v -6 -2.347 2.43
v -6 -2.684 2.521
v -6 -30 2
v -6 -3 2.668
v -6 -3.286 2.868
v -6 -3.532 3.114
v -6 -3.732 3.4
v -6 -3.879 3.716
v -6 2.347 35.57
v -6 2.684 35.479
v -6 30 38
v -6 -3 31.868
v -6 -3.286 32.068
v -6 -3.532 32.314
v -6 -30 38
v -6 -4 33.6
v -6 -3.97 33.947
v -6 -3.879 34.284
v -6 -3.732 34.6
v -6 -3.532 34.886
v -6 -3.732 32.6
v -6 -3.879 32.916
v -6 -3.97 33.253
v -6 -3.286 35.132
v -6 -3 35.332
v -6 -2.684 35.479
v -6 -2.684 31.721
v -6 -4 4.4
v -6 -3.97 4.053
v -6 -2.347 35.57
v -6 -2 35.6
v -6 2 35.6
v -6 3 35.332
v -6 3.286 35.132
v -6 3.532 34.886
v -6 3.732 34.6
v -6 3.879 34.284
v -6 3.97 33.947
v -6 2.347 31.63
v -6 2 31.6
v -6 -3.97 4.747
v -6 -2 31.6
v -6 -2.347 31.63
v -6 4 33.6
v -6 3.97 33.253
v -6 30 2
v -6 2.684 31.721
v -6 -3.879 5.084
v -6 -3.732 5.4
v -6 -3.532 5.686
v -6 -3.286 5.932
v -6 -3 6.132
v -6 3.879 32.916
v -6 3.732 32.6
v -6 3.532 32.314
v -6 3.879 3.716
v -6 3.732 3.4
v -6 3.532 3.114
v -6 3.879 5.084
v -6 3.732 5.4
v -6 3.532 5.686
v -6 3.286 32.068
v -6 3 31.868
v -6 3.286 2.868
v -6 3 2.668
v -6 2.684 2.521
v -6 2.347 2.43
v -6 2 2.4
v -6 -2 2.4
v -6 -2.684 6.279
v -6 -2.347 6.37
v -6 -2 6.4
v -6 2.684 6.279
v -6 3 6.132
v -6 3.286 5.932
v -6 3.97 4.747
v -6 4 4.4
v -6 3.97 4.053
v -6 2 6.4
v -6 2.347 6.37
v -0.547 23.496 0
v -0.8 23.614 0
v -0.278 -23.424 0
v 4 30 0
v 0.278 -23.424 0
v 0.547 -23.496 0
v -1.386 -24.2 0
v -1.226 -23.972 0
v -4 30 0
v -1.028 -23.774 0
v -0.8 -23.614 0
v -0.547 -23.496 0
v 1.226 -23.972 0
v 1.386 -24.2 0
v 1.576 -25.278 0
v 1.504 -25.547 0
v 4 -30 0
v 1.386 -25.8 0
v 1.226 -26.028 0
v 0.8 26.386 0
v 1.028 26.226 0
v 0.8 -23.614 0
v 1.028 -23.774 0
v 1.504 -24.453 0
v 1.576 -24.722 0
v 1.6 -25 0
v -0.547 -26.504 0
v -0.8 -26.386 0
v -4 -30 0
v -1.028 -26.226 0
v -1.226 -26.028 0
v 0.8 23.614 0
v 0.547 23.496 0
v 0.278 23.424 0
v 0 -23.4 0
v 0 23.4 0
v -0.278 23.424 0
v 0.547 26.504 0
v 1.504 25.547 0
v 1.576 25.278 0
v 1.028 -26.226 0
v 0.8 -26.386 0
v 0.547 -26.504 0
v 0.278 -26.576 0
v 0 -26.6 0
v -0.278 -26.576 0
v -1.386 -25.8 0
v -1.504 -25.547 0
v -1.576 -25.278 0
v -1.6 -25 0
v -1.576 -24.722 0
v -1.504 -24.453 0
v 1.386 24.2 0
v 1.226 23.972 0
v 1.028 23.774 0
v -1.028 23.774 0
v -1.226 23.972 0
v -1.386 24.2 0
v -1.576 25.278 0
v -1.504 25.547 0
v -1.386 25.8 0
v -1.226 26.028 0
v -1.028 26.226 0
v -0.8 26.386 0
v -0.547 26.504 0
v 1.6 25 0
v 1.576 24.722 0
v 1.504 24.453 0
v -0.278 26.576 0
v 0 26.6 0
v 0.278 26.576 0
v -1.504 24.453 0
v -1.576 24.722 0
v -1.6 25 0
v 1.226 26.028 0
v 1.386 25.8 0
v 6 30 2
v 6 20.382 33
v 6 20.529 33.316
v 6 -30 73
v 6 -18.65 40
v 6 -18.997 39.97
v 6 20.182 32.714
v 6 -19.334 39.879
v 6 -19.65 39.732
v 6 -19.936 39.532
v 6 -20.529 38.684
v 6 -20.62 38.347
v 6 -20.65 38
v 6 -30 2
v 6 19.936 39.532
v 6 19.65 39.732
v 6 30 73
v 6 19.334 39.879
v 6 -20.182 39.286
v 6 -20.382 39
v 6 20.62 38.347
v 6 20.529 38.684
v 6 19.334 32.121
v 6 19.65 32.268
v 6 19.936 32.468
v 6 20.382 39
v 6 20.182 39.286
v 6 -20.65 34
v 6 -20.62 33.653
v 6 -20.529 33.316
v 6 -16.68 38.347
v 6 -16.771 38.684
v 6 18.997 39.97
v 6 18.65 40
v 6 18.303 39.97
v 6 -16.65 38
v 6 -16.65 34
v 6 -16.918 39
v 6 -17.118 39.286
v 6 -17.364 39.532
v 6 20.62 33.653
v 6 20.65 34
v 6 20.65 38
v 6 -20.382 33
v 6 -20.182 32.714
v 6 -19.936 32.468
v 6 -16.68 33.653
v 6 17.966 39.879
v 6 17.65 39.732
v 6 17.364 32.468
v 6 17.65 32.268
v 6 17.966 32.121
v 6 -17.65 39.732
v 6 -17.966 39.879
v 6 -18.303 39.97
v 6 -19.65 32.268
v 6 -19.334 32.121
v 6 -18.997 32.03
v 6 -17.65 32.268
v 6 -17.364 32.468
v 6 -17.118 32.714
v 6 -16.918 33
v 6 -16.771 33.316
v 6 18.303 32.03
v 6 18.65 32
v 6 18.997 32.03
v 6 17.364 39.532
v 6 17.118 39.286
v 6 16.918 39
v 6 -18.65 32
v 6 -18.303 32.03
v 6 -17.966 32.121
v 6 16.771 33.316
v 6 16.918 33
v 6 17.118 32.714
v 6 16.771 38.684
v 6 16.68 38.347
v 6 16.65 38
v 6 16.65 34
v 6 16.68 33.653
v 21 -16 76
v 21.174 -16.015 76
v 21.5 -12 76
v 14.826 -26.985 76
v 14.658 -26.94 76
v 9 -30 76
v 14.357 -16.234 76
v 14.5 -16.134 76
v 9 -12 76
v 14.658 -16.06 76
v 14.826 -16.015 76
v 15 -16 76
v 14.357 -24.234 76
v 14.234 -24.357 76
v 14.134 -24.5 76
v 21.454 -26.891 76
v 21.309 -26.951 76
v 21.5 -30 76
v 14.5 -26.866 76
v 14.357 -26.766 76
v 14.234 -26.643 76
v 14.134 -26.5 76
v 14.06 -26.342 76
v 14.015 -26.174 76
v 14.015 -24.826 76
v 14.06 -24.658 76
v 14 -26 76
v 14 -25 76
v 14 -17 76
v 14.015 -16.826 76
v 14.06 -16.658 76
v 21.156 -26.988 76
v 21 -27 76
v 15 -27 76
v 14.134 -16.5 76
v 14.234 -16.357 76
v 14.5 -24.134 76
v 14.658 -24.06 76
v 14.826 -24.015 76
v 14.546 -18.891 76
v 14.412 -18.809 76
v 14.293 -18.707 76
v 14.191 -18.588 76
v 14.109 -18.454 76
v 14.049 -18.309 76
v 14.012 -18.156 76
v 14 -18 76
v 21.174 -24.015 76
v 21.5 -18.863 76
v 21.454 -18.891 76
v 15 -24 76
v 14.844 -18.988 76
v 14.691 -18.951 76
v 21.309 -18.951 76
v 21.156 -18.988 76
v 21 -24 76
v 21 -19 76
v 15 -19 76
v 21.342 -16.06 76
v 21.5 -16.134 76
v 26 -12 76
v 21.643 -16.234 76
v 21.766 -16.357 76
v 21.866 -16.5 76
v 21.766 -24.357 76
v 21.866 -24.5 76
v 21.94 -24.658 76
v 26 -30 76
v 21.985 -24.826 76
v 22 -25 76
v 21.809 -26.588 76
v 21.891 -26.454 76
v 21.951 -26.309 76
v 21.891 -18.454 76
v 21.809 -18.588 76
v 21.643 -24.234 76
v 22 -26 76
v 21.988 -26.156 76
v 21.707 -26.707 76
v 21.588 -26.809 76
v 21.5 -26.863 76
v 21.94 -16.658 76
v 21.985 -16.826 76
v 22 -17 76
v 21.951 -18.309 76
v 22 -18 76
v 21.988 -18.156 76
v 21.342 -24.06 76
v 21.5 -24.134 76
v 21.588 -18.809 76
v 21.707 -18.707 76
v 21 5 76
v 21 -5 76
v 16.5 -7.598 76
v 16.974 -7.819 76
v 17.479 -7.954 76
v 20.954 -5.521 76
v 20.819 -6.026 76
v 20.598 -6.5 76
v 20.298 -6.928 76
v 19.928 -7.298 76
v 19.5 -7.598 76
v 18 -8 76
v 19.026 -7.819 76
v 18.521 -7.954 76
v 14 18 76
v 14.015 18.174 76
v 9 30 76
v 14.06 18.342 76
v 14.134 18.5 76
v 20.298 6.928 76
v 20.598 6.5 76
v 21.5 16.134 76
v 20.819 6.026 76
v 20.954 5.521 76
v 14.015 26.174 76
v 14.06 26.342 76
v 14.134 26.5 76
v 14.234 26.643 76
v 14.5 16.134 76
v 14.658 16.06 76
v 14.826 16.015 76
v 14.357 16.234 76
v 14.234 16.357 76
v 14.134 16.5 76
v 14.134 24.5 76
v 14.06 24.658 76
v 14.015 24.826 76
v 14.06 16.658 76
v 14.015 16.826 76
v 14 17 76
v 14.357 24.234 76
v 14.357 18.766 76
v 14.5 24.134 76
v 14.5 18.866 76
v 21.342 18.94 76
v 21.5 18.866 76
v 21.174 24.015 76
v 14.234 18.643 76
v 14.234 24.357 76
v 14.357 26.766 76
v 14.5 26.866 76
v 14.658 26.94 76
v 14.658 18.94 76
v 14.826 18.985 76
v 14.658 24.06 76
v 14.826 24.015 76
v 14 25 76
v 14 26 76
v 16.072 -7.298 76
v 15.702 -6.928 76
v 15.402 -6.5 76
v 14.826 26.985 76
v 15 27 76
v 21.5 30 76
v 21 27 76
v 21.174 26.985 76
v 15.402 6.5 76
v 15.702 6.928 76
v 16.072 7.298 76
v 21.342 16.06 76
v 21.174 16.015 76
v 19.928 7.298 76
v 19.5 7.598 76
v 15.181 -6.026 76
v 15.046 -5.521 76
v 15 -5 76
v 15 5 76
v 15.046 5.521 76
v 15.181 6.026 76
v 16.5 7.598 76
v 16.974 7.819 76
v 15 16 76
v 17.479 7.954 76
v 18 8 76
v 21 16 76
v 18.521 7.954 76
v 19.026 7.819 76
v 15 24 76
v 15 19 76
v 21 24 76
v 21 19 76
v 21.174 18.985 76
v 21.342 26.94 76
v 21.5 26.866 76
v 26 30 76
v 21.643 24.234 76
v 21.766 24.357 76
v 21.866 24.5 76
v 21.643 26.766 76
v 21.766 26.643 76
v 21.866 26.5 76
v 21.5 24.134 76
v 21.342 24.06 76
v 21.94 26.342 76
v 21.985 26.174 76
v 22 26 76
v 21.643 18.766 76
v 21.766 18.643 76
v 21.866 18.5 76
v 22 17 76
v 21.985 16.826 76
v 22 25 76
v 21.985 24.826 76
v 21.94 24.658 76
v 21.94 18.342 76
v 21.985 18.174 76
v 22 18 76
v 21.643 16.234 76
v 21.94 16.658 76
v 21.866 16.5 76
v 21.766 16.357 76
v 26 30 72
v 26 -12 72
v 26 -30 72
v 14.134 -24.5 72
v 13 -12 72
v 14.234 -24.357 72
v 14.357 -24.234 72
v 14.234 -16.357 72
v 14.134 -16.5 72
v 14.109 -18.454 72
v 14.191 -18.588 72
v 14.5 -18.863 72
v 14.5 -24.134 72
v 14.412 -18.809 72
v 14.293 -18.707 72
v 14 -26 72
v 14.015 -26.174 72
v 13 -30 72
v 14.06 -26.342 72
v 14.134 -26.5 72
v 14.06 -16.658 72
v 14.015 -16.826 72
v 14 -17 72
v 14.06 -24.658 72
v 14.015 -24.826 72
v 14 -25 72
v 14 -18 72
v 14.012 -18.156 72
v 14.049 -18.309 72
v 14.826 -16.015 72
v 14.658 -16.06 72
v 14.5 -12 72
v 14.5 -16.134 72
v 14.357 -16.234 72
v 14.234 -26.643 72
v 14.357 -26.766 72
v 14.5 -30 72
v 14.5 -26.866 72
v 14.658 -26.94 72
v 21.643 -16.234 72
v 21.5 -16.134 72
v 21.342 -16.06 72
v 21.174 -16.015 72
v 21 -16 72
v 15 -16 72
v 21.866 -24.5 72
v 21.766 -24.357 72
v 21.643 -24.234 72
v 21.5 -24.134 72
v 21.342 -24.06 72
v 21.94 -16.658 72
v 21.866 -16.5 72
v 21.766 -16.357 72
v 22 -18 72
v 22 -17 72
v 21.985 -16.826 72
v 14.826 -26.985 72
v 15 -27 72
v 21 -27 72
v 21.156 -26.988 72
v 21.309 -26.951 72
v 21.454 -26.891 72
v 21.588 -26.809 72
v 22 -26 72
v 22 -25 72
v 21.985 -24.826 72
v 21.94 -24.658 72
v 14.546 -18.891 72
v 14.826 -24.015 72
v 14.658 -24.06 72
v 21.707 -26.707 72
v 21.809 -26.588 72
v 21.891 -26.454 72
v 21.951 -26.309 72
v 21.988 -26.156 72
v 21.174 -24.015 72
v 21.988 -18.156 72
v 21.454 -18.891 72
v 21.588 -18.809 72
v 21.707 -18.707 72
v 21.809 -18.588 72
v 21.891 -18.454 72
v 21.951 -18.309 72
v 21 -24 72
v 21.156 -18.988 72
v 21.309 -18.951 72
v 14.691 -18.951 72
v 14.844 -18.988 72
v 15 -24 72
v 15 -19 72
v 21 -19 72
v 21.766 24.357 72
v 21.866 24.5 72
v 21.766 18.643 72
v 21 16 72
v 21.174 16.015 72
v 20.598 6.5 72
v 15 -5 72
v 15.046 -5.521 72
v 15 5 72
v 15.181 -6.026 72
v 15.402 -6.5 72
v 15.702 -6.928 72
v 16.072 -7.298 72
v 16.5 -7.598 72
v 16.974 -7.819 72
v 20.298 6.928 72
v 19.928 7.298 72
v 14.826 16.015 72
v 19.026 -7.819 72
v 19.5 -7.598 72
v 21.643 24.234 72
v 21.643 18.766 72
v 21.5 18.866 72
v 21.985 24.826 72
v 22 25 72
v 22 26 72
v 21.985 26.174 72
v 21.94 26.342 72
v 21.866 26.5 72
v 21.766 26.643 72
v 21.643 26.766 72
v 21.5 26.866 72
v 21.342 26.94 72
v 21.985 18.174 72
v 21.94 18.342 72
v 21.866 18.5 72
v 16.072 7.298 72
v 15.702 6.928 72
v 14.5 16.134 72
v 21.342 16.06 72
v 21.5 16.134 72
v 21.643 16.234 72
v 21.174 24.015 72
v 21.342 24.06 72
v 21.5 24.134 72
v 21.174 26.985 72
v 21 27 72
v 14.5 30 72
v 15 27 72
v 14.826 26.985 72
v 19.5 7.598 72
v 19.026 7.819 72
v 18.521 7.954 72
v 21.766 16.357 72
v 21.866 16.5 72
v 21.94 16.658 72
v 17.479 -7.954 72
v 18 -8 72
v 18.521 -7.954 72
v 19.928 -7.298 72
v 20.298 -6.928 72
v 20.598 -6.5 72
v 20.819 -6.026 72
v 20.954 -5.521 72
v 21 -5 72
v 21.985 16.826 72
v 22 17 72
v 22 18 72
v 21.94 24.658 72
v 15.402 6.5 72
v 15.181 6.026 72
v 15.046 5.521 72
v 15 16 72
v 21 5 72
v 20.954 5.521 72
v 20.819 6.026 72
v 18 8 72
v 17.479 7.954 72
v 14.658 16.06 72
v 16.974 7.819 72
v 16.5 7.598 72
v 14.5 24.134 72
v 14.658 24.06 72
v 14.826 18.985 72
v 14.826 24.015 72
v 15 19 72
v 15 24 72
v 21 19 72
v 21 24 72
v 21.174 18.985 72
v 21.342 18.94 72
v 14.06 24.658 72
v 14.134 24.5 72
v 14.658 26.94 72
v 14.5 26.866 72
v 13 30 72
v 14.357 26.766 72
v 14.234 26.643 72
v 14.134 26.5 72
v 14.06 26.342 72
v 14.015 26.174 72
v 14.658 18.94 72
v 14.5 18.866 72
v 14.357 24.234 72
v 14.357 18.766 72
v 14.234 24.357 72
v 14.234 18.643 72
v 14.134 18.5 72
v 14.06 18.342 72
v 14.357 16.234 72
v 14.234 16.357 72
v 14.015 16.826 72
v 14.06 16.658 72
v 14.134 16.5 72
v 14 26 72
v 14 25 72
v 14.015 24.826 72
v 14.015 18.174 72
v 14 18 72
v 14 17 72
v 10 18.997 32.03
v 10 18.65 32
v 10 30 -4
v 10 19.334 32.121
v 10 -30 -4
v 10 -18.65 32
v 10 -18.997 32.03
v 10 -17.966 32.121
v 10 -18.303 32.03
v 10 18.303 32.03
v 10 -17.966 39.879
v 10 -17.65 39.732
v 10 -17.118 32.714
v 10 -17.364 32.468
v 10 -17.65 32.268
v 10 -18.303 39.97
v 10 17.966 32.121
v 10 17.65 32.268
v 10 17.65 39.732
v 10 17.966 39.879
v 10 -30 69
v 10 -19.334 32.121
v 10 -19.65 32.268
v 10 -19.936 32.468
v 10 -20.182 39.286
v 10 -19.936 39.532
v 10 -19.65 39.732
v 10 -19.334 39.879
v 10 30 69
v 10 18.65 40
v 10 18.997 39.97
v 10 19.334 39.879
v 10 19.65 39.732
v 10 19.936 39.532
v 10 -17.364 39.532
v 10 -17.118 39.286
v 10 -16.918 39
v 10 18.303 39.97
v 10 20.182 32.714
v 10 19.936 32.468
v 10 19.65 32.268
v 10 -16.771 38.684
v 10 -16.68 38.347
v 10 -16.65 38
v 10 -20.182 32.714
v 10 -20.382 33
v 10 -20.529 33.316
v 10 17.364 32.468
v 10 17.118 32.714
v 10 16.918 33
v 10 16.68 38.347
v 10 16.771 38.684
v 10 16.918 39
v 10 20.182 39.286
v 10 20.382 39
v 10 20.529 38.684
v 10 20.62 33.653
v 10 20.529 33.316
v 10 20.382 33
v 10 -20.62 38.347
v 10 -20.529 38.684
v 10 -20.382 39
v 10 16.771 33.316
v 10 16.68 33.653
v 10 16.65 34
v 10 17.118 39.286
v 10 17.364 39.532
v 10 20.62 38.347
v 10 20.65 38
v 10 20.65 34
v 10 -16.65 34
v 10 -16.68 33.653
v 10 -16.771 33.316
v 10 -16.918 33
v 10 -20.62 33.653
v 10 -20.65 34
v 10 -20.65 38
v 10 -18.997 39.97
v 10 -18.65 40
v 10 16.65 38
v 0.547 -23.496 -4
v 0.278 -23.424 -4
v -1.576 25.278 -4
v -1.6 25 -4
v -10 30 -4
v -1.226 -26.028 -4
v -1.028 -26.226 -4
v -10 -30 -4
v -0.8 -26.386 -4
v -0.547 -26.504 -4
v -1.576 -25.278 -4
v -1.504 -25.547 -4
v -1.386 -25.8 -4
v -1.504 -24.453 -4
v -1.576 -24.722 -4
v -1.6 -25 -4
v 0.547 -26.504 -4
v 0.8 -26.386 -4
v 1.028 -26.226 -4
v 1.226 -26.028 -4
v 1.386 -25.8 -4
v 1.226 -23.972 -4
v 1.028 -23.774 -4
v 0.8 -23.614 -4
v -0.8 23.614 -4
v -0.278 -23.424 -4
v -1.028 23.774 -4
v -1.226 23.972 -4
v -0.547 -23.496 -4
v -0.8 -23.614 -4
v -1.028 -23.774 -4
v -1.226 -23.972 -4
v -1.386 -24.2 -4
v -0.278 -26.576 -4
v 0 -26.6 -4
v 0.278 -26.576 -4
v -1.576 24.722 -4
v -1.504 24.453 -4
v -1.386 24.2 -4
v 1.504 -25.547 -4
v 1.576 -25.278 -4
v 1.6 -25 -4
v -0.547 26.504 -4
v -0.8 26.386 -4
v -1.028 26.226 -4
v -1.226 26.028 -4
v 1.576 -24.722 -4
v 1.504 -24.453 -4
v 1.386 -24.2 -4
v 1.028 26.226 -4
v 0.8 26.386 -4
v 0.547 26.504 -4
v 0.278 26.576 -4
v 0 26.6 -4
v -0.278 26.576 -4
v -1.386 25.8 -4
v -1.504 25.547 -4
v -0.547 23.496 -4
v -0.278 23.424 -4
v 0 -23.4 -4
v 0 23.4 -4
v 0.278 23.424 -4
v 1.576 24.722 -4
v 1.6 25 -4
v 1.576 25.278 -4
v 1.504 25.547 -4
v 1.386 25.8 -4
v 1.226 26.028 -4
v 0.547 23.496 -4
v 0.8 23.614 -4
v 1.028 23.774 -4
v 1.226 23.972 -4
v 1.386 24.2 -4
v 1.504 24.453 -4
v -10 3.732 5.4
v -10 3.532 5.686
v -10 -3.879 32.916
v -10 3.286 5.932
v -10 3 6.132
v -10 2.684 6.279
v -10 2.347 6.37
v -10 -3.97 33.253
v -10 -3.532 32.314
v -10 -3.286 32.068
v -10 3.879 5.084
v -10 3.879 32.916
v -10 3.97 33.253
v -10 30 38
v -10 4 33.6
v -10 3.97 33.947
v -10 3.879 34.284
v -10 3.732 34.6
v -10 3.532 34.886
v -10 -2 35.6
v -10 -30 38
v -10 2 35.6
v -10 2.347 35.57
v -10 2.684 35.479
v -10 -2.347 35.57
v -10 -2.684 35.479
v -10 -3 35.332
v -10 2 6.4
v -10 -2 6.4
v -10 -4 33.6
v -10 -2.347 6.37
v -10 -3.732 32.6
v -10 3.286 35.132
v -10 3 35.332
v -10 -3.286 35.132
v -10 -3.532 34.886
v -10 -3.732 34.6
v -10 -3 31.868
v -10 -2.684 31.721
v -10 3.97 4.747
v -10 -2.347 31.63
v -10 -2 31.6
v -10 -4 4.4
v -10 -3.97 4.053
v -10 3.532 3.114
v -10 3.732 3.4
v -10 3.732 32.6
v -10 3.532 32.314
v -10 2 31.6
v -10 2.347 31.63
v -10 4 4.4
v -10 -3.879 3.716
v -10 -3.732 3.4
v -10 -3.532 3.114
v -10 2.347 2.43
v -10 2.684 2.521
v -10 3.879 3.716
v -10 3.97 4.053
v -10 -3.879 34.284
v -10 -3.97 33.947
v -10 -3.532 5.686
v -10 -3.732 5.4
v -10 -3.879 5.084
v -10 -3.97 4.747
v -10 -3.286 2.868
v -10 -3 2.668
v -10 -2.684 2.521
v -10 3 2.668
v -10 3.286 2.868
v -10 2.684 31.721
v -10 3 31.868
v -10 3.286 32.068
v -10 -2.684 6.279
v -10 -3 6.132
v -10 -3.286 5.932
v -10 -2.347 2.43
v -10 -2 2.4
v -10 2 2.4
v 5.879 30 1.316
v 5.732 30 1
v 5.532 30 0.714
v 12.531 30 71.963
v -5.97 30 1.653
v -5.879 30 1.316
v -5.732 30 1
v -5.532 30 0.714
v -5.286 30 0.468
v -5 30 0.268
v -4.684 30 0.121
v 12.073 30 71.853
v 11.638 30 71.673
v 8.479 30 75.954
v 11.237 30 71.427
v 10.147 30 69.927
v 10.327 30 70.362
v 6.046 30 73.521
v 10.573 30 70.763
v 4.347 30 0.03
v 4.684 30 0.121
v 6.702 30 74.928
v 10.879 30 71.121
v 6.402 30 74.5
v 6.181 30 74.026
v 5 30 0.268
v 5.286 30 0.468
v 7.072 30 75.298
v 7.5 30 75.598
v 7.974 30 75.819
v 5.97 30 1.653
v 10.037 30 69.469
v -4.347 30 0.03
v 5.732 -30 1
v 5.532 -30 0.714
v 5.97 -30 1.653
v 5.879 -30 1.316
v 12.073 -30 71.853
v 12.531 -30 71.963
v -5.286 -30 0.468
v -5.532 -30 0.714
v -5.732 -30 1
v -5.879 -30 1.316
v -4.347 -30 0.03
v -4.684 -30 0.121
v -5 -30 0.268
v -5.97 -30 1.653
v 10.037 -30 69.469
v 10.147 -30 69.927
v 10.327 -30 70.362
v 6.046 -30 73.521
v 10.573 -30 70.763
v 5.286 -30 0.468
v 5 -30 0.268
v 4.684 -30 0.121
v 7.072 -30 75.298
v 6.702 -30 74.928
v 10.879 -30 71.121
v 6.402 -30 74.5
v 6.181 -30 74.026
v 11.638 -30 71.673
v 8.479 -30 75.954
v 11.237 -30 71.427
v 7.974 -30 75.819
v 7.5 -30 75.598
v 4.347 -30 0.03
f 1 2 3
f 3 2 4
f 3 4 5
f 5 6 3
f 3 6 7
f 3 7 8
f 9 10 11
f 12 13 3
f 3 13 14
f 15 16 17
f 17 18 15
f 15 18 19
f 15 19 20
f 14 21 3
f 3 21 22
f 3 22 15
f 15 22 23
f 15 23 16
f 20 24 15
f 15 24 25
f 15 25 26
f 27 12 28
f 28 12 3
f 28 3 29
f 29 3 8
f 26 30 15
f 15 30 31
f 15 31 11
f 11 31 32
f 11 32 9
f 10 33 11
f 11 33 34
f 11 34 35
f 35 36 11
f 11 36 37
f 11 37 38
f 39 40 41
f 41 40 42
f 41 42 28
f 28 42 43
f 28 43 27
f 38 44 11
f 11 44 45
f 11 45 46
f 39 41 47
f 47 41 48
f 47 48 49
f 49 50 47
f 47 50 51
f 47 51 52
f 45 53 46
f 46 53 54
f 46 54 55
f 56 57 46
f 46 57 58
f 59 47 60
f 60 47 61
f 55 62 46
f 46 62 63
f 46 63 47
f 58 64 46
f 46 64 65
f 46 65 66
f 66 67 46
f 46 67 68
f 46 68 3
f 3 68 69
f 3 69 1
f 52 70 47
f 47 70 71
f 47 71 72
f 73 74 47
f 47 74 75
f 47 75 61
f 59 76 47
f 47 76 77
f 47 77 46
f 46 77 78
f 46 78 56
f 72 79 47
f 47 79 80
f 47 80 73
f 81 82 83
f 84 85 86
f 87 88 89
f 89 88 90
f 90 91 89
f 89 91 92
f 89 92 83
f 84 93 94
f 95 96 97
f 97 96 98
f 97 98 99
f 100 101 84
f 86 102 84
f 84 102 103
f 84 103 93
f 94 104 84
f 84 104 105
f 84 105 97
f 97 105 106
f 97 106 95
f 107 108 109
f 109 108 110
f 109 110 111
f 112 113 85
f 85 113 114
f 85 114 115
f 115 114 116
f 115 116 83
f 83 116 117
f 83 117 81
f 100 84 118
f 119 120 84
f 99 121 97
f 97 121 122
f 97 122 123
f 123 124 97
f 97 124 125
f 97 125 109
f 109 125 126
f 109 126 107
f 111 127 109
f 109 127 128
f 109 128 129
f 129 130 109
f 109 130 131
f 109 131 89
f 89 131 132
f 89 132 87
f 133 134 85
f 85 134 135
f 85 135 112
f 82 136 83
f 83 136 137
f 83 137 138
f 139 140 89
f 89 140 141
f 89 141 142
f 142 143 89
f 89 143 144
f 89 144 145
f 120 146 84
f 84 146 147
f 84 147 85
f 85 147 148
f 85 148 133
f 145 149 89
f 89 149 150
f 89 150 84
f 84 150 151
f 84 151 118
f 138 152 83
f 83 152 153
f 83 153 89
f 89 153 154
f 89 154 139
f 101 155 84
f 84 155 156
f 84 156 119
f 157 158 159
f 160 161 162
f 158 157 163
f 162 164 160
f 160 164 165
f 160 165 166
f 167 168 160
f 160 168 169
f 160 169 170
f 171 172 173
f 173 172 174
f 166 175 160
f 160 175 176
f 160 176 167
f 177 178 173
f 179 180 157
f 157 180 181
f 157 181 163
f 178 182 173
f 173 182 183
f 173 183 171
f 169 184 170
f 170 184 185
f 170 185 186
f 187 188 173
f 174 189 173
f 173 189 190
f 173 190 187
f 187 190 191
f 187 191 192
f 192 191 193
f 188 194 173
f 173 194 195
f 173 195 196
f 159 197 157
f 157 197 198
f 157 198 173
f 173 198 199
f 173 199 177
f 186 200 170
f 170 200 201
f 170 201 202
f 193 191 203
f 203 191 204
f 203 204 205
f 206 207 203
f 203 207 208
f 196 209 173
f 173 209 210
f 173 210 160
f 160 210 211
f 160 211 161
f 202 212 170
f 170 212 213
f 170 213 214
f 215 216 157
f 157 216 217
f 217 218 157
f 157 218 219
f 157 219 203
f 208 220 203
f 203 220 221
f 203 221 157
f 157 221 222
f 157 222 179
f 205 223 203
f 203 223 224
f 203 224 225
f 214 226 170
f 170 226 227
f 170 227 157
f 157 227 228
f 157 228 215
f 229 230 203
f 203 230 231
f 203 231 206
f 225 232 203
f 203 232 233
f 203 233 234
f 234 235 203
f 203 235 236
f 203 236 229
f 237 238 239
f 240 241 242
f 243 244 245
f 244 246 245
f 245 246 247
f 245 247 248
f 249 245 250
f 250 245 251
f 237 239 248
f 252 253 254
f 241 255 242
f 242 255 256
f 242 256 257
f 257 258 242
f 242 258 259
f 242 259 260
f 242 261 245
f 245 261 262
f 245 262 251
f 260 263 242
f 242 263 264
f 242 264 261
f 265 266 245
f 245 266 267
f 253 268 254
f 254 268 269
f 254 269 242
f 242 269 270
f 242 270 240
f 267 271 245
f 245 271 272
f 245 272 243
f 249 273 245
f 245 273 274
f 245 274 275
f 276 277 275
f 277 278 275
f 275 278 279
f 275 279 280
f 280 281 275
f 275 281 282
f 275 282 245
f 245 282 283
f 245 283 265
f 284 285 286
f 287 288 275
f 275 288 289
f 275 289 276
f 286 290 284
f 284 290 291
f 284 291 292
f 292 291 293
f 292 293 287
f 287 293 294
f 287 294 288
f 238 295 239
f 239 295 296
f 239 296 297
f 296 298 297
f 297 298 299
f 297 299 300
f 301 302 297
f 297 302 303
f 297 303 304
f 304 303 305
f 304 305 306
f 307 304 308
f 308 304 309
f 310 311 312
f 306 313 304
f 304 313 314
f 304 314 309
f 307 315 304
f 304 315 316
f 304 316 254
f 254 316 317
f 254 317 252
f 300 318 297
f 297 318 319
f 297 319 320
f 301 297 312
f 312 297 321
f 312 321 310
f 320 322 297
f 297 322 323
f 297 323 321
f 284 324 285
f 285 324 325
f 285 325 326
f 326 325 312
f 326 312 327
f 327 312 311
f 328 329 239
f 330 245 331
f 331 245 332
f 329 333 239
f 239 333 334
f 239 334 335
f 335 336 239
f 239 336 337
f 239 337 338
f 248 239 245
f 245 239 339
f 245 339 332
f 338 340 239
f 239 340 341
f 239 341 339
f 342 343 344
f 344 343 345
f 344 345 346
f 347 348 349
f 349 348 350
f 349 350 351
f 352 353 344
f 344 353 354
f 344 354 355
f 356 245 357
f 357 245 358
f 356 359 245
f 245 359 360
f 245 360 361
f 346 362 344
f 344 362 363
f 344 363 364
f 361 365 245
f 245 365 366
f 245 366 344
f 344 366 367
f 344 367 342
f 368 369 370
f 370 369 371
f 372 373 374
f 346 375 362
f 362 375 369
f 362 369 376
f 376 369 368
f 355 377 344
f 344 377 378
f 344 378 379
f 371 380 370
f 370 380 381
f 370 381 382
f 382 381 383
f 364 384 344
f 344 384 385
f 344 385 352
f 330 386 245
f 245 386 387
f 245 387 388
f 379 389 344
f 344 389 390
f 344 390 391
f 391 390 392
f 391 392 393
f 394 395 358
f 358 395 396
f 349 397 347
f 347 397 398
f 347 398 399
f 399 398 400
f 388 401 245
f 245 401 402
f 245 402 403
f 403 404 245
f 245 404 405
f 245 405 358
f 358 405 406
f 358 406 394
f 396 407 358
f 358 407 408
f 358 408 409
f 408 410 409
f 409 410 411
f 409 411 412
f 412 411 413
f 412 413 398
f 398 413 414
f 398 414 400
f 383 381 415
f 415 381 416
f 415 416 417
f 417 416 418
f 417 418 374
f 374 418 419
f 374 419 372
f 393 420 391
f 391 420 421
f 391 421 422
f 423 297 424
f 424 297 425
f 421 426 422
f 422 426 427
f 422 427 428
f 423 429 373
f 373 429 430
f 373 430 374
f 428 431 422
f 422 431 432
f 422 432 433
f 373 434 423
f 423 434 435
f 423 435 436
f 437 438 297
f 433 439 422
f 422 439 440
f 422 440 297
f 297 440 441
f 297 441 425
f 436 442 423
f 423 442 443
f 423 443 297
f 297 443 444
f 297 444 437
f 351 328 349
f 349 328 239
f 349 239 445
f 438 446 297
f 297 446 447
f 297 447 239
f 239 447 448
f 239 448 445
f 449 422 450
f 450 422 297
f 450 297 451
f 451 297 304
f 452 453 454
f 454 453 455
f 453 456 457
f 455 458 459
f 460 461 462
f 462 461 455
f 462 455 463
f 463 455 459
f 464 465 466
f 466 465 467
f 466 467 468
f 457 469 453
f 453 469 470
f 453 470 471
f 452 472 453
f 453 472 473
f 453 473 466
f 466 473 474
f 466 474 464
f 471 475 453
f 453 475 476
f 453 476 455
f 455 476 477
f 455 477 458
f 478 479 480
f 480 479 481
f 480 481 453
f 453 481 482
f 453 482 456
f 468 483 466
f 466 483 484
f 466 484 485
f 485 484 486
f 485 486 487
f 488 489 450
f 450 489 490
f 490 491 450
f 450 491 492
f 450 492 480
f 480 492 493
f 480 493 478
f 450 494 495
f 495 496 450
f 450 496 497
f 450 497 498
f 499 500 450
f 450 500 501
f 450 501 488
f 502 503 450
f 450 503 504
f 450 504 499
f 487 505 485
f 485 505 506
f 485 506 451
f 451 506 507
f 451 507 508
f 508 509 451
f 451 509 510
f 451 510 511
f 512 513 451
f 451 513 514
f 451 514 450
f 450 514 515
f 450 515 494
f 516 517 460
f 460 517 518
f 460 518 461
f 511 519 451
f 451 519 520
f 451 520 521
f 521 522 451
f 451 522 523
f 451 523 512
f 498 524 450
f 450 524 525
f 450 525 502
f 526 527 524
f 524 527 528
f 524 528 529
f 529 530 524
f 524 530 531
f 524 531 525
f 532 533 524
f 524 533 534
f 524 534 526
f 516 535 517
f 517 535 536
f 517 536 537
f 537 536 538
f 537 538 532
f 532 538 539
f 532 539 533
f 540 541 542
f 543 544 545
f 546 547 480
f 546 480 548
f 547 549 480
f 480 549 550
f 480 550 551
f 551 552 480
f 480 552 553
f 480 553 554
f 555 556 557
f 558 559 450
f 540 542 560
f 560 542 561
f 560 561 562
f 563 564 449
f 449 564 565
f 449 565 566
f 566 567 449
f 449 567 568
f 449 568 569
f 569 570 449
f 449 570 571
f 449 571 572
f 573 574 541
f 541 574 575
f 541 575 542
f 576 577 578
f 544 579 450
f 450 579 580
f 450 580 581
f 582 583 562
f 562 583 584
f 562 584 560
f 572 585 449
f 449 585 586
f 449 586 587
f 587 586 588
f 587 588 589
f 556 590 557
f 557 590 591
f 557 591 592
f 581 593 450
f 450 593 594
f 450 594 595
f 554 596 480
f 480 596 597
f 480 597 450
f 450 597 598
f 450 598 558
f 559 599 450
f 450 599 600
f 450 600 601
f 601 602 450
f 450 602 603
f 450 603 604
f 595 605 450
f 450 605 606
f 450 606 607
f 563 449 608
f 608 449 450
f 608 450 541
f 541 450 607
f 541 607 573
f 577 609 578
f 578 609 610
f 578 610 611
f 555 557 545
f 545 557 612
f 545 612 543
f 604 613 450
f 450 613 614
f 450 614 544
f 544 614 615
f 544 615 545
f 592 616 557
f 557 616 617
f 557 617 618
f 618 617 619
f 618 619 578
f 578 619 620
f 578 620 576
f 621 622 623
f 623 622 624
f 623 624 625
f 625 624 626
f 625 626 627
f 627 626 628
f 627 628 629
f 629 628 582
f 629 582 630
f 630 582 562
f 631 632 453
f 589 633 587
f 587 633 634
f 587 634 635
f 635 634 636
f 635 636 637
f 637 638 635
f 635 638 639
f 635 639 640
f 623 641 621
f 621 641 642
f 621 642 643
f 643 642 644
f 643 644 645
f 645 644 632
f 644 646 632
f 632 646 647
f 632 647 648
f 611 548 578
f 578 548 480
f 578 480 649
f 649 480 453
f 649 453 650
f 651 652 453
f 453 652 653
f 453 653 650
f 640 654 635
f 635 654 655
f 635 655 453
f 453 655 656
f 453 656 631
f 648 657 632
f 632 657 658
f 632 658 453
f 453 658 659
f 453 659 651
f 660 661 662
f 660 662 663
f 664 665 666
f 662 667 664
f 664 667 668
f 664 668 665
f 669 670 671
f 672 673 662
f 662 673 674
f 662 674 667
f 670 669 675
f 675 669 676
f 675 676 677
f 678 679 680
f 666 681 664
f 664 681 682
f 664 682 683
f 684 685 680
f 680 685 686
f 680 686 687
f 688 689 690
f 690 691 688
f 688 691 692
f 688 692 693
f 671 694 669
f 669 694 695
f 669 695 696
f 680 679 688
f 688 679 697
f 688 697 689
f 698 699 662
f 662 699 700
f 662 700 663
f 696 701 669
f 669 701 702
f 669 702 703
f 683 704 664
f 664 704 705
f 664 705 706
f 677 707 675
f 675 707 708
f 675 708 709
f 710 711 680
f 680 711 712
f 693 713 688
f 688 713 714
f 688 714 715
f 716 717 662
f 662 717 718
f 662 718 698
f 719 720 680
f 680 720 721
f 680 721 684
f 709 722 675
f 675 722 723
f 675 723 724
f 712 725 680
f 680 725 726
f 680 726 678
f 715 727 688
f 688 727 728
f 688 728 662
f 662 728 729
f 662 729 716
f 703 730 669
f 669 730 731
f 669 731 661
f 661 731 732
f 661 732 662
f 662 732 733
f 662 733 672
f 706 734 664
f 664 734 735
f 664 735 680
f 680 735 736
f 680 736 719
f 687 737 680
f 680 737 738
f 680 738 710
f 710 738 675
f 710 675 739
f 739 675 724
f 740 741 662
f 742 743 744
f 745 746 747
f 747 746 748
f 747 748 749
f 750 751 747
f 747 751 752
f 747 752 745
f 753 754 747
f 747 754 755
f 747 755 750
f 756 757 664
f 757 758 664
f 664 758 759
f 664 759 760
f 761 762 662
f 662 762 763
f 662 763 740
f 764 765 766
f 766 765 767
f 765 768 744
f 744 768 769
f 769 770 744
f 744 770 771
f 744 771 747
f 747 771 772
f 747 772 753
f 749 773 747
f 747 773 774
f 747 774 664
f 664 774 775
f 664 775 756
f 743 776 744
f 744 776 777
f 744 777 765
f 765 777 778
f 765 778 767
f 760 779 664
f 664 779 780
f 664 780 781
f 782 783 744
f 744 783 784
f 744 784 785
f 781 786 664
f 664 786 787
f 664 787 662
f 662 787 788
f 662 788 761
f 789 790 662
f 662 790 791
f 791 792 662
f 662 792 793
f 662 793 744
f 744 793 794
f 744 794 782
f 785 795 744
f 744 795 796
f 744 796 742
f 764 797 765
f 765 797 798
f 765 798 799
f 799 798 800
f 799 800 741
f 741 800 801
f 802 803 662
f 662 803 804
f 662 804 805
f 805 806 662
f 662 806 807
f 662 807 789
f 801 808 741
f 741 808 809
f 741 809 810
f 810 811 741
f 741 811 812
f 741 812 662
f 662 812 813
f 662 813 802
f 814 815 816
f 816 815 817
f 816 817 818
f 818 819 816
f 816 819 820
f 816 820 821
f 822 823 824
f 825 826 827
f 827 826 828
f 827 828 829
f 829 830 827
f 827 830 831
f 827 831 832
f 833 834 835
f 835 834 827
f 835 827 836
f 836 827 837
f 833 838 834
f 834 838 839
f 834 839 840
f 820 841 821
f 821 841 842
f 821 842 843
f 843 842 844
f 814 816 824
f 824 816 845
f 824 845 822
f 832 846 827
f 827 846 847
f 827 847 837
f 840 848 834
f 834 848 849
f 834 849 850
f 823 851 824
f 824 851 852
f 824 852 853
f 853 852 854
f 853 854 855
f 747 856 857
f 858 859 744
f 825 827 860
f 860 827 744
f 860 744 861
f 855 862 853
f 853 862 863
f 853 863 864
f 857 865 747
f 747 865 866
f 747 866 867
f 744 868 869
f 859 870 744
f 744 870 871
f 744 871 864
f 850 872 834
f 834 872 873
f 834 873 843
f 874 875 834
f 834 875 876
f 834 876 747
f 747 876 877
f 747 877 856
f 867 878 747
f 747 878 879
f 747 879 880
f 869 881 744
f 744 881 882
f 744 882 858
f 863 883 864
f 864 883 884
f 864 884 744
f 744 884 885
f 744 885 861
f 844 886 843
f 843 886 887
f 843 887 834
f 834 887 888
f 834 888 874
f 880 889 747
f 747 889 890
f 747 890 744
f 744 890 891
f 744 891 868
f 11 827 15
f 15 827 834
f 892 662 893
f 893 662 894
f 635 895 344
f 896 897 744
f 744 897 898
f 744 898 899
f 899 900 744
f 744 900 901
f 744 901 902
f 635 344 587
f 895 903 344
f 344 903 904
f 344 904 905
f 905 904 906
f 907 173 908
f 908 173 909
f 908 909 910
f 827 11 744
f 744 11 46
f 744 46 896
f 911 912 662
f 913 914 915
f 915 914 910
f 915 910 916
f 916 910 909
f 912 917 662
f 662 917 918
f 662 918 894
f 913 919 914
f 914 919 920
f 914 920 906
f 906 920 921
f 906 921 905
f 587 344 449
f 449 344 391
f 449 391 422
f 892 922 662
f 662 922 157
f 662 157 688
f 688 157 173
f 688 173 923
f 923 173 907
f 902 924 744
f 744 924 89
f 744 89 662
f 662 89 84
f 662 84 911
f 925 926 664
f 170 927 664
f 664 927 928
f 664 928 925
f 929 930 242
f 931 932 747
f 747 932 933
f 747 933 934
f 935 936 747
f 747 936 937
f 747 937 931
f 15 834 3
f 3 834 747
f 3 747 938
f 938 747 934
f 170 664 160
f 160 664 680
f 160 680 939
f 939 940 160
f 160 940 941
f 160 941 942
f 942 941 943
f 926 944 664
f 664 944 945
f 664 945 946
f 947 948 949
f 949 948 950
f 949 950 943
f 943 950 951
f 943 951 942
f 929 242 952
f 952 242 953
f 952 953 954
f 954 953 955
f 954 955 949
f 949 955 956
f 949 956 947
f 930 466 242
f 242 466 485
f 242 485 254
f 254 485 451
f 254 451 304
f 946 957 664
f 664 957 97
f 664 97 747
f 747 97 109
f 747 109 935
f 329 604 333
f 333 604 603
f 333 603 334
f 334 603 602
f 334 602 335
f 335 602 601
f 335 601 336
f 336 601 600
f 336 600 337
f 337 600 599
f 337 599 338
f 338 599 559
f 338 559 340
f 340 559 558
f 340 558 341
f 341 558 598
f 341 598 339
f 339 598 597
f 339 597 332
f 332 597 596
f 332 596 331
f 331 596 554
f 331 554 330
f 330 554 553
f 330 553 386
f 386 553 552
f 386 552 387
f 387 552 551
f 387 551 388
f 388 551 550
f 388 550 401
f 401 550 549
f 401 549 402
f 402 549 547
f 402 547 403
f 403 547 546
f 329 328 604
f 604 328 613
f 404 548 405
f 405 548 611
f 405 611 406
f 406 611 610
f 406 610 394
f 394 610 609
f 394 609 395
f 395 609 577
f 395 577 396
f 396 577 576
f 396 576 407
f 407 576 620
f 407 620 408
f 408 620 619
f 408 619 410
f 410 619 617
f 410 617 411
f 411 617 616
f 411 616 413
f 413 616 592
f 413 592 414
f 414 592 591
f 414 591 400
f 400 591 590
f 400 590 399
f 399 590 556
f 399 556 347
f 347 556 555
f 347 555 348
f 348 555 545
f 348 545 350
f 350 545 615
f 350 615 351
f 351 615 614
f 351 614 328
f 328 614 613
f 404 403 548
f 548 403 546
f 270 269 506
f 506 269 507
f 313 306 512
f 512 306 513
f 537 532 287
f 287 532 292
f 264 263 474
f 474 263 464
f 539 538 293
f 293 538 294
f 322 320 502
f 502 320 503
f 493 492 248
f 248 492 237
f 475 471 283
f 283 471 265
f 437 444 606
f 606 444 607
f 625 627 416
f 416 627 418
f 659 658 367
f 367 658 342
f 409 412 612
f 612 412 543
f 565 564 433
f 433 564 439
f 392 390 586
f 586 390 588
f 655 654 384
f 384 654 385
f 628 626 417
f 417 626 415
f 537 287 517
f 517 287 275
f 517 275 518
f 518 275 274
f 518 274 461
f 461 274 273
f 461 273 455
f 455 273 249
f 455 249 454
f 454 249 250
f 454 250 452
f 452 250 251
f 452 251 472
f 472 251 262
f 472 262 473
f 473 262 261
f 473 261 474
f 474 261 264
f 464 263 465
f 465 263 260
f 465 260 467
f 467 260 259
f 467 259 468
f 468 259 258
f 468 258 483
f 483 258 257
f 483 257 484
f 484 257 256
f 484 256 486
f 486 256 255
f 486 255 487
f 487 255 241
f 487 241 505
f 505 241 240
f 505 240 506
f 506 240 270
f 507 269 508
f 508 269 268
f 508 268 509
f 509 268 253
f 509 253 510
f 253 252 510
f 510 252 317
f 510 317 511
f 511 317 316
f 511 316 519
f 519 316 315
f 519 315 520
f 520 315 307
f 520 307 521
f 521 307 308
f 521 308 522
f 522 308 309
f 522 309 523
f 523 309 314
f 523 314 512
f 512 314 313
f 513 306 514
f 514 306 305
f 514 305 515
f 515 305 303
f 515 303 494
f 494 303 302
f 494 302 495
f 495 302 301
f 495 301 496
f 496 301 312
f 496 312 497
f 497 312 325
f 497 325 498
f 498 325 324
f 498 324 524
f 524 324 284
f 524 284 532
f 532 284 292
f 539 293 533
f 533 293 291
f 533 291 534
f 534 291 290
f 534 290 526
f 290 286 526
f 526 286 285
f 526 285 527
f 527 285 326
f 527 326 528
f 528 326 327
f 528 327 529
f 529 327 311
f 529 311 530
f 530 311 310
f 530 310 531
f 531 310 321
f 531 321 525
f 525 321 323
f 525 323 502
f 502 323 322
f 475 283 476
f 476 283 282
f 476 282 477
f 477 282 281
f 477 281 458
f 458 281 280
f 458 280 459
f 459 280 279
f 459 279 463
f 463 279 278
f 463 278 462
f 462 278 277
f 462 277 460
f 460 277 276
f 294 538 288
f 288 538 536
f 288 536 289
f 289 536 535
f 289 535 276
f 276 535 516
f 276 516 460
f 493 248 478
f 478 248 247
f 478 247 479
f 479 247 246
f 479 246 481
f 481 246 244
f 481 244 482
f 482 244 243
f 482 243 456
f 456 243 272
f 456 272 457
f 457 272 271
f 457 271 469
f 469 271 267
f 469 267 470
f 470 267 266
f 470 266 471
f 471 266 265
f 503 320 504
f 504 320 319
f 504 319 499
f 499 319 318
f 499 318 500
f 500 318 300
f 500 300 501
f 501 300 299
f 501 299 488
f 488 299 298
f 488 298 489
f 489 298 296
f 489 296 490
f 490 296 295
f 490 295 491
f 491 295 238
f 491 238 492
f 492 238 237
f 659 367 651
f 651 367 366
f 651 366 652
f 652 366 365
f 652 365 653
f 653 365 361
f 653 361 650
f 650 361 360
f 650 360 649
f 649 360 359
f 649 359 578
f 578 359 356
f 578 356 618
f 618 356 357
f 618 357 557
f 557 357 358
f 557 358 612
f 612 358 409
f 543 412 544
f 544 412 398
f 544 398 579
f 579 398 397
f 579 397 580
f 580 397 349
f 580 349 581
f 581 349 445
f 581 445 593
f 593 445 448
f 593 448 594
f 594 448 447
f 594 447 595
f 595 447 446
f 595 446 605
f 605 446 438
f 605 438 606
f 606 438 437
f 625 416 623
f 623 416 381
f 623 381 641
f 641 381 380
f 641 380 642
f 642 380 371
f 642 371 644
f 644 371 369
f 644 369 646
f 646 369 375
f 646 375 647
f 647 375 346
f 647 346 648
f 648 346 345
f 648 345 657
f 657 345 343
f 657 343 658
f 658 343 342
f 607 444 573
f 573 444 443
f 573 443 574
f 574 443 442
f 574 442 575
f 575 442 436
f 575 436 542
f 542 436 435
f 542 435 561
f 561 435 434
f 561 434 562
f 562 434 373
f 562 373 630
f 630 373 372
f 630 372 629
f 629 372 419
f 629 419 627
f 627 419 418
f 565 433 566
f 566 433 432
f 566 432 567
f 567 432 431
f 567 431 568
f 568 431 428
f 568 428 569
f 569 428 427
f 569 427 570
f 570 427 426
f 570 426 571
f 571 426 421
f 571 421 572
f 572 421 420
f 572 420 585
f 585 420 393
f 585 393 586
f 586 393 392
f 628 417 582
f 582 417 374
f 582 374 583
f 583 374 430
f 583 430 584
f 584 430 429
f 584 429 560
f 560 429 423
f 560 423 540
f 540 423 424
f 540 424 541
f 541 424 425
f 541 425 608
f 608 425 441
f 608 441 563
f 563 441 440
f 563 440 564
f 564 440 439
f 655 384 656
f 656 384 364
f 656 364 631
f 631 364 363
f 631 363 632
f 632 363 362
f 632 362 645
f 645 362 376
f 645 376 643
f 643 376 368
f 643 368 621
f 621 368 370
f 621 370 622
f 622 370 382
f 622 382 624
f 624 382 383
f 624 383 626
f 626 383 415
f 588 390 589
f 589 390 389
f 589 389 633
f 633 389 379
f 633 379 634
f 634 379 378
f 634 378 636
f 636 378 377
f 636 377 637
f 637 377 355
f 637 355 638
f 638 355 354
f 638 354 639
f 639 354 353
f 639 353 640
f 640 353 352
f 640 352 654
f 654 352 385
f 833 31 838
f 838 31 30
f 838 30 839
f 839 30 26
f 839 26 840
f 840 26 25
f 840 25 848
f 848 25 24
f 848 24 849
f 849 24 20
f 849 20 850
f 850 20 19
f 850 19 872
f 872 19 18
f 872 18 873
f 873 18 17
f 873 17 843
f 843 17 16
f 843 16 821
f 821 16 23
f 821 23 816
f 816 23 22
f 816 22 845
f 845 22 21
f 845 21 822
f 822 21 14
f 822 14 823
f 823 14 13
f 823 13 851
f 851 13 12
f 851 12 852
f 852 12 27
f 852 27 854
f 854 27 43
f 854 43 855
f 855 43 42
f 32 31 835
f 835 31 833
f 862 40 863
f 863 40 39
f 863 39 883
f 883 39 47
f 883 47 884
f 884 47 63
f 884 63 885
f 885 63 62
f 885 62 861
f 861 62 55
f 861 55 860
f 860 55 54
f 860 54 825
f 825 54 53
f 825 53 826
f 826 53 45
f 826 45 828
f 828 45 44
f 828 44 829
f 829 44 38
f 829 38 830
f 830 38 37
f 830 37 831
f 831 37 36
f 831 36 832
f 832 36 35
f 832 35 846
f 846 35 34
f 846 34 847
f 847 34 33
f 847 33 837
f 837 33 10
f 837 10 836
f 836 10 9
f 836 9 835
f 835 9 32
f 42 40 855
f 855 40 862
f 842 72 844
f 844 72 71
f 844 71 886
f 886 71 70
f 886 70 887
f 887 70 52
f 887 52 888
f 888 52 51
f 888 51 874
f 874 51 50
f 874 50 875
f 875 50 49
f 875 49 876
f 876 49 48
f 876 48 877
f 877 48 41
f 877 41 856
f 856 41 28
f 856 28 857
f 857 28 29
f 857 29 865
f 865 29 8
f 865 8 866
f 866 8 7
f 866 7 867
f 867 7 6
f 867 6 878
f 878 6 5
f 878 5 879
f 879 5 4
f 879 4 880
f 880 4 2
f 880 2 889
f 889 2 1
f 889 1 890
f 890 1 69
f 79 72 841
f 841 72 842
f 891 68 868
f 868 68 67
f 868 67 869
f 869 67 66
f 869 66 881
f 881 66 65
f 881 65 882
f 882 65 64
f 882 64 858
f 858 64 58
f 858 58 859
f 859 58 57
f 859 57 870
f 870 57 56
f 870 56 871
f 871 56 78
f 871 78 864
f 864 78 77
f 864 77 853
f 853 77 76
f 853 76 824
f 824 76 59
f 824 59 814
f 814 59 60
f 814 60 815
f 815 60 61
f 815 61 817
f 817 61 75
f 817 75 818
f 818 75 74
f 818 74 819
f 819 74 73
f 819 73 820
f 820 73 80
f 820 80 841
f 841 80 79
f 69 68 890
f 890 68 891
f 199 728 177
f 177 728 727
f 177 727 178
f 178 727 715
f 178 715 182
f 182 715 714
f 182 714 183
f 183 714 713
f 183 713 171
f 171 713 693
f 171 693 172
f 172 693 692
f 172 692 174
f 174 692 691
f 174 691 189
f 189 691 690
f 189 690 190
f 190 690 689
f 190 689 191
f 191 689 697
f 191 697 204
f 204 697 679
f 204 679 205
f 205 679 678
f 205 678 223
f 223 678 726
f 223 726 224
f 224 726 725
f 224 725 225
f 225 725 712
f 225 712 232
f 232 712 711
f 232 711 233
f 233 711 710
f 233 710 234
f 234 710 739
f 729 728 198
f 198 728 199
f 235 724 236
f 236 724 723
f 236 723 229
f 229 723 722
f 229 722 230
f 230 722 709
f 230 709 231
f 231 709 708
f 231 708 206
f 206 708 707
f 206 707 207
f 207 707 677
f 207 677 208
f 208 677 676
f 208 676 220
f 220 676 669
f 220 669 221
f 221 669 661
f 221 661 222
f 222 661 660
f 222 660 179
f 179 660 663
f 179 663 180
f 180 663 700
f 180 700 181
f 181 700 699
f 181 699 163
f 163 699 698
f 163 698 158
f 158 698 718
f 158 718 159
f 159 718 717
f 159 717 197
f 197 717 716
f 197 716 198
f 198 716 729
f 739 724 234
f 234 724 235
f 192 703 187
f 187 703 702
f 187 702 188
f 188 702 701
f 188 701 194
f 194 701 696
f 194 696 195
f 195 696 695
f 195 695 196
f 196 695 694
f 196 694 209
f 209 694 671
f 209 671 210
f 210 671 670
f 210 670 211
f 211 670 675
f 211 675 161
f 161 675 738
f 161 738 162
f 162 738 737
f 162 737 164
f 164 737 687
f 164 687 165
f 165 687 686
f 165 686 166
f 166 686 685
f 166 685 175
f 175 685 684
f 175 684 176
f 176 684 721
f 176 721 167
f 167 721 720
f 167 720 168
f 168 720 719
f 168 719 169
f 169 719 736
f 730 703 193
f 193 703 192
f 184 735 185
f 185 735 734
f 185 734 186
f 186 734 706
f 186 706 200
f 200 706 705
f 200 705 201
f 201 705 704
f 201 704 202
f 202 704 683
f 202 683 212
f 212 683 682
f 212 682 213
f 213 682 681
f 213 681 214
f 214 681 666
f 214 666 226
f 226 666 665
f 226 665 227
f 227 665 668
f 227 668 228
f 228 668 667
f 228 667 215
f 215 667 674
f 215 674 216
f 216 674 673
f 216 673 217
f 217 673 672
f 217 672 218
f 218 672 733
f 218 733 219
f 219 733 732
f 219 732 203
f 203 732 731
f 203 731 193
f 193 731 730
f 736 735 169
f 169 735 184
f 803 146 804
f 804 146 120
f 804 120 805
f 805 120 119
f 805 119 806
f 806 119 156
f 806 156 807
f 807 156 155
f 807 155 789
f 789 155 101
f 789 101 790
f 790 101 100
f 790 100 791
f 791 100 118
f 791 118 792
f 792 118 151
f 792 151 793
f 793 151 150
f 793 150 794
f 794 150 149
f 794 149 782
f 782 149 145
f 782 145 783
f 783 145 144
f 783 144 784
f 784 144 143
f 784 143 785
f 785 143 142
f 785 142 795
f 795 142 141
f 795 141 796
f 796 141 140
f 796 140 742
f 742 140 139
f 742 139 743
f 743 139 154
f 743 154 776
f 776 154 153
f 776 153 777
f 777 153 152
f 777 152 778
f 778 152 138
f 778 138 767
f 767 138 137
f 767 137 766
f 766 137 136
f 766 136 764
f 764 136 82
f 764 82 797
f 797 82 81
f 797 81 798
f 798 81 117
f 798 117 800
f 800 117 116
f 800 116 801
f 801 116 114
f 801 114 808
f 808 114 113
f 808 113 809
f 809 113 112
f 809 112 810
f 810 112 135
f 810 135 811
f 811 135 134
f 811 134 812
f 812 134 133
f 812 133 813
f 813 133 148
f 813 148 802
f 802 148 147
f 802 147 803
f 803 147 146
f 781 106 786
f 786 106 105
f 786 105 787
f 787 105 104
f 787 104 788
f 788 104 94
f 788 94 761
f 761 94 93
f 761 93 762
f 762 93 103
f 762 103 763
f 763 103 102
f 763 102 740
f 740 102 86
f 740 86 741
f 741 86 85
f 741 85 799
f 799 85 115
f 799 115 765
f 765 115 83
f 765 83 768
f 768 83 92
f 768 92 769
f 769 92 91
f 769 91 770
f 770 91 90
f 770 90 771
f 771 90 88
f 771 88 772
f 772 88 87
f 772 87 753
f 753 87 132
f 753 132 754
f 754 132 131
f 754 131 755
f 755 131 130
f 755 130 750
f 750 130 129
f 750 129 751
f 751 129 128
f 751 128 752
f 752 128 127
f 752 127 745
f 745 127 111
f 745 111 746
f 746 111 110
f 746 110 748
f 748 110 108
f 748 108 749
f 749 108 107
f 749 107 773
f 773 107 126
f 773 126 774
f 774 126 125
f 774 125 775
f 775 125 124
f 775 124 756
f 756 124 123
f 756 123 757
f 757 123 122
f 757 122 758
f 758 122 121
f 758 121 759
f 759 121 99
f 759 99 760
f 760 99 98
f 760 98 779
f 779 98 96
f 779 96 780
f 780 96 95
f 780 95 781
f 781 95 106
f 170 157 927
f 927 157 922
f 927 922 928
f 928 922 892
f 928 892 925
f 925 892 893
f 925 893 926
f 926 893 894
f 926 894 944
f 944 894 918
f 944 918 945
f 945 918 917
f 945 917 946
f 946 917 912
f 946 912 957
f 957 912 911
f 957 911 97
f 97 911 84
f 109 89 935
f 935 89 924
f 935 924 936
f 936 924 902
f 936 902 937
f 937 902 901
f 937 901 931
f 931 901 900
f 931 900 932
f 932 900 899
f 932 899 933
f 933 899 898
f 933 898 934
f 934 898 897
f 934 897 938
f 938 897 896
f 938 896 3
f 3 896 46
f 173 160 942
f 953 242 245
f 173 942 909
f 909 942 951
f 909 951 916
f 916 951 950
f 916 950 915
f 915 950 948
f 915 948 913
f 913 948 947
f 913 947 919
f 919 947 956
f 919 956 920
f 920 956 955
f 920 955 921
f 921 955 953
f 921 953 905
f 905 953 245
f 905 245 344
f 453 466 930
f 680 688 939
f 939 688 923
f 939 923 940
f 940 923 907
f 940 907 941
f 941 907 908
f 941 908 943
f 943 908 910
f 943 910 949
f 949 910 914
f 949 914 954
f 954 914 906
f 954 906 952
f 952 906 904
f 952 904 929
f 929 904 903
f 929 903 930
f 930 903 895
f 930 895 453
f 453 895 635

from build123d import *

# Parameters (mm, degrees)
BOSS_EXTRUDE1_DEPTH = 30
SKETCH2_W           = 8
SKETCH2_H           = 3
CUT_EXTRUDE1_DEPTH  = 86.743804441
FILLET1_R           = 1
CUT_EXTRUDE2_REACH  = 89.75
CUT_EXTRUDE3_REACH  = 86.119
SKETCH5_R           = 1.6
CUT_EXTRUDE4_DEPTH  = 86.743804441
FILLET2_R           = 2
FILLET3_R           = 3


with BuildPart() as part:
    # Sketch1 → Boss-Extrude1 (new, symmetric)
    with BuildSketch(Plane(origin=(0, 0, 0), x_dir=(1, 0, 0), z_dir=(0, 1, 0))):
        Polygon((-6, 0), (6, 0), (6, -76), (10, -76), (26, -76), (26, -72), (10, -72), (10, 4), (-10, 4), (-10, -38), (-6, -38), align=None)
    extrude(amount=BOSS_EXTRUDE1_DEPTH, both=True)

    # Sketch2 → Cut-Extrude1 (cut, through all)
    with BuildSketch(Plane(origin=(0, 0, 72), x_dir=(-1, 0, 0), z_dir=(0, 0, -1))):
        with BuildLine():
            Line((-21, -5), (-21, 5))
            ThreePointArc((-21, 5), (-18, 8), (-15, 5))
            Line((-15, 5), (-15, -5))
            ThreePointArc((-15, -5), (-18, -8), (-21, -5))
        make_face()
        with Locations((-18, 25.5)):
            Rectangle(SKETCH2_W, SKETCH2_H)
        with Locations((-18, 17.5)):
            Rectangle(SKETCH2_W, SKETCH2_H)
        with Locations((-18, -17.5)):
            Rectangle(SKETCH2_W, SKETCH2_H)
        with Locations((-18, -25.5)):
            Rectangle(SKETCH2_W, SKETCH2_H)
    extrude(amount=-CUT_EXTRUDE1_DEPTH, mode=Mode.SUBTRACT)

    # Fillet1
    fillet1_edges = [part.edges().sort_by_distance(p)[0] for p in [
        (22, 24, 74),
        (22, 27, 74),
        (14, 27, 74),
        (14, 24, 74),
        (22, 16, 74),
        (22, 19, 74),
        (14, 19, 74),
        (14, 16, 74),
        (14, -19, 74),
        (22, -19, 74),
        (22, -16, 74),
        (14, -16, 74),
        (14, -27, 74),
        (22, -27, 74),
        (22, -24, 74),
        (14, -24, 74),
    ]]
    fillet(fillet1_edges, radius=FILLET1_R)

    # Sketch3 → Cut-Extrude2 (cut, up to next)
    with BuildSketch(Plane(origin=(-6, 0, 0), x_dir=(0, 0, -1), z_dir=(1, 0, 0)), mode=Mode.PRIVATE) as cut_extrude2_sk1:
        with BuildLine():
            Line((-35.6, -2), (-35.6, 2))
            ThreePointArc((-35.6, 2), (-33.6, 4), (-31.6, 2))
            Line((-31.6, 2), (-31.6, -2))
            ThreePointArc((-31.6, -2), (-33.6, -4), (-35.6, -2))
        make_face()
    cut_extrude2_tool1 = extrude(cut_extrude2_sk1.sketch, amount=-CUT_EXTRUDE2_REACH, mode=Mode.PRIVATE) & part.part
    # Sketch3 → Cut-Extrude2 (cut, up to next)
    with BuildSketch(Plane(origin=(-6, 0, 0), x_dir=(0, 0, -1), z_dir=(1, 0, 0)), mode=Mode.PRIVATE) as cut_extrude2_sk2:
        with BuildLine():
            Line((-2.4, -2), (-2.4, 2))
            ThreePointArc((-2.4, 2), (-4.4, 4), (-6.4, 2))
            Line((-6.4, 2), (-6.4, -2))
            ThreePointArc((-6.4, -2), (-4.4, -4), (-2.4, -2))
        make_face()
    cut_extrude2_tool2 = extrude(cut_extrude2_sk2.sketch, amount=-CUT_EXTRUDE2_REACH, mode=Mode.PRIVATE) & part.part
    add(cut_extrude2_tool1.solids().sort_by_distance((-6, 0, 33.6))[0], mode=Mode.SUBTRACT)
    add(cut_extrude2_tool2.solids().sort_by_distance((-6, 0, 4.4))[0], mode=Mode.SUBTRACT)

    # Sketch4 → Cut-Extrude3 (cut, up to next)
    with BuildSketch(Plane(origin=(10, 0, 0), x_dir=(0, 0, -1), z_dir=(1, 0, 0)), mode=Mode.PRIVATE) as cut_extrude3_sk1:
        with BuildLine():
            Line((-38, 20.65), (-34, 20.65))
            ThreePointArc((-34, 20.65), (-32, 18.65), (-34, 16.65))
            Line((-34, 16.65), (-38, 16.65))
            ThreePointArc((-38, 16.65), (-40, 18.65), (-38, 20.65))
        make_face()
    cut_extrude3_tool1 = extrude(cut_extrude3_sk1.sketch, amount=-CUT_EXTRUDE3_REACH, mode=Mode.PRIVATE) & part.part
    # Sketch4 → Cut-Extrude3 (cut, up to next)
    with BuildSketch(Plane(origin=(10, 0, 0), x_dir=(0, 0, -1), z_dir=(1, 0, 0)), mode=Mode.PRIVATE) as cut_extrude3_sk2:
        with BuildLine():
            Line((-38, -20.65), (-34, -20.65))
            ThreePointArc((-34, -20.65), (-32, -18.65), (-34, -16.65))
            Line((-34, -16.65), (-38, -16.65))
            ThreePointArc((-38, -16.65), (-40, -18.65), (-38, -20.65))
        make_face()
    cut_extrude3_tool2 = extrude(cut_extrude3_sk2.sketch, amount=-CUT_EXTRUDE3_REACH, mode=Mode.PRIVATE) & part.part
    add(cut_extrude3_tool1.solids().sort_by_distance((10, 18.65, 36))[0], mode=Mode.SUBTRACT)
    add(cut_extrude3_tool2.solids().sort_by_distance((10, -18.65, 36))[0], mode=Mode.SUBTRACT)

    # Sketch5 → Cut-Extrude4 (cut, through all)
    with BuildSketch(Plane.XY):
        with Locations((0, 25)):
            Circle(SKETCH5_R)
        with Locations(Location((0, -25, 0), (0, 0, 180))):
            Circle(SKETCH5_R)
    extrude(amount=-CUT_EXTRUDE4_DEPTH, mode=Mode.SUBTRACT)

    # Fillet2
    fillet2_edges = [part.edges().sort_by_distance(p)[0] for p in [
        (6, 0, 0),
        (-6, 0, 0),
    ]]
    fillet(fillet2_edges, radius=FILLET2_R)

    # Fillet3
    fillet3_edges = [part.edges().sort_by_distance(p)[0] for p in [
        (10, 0, 72),
        (6, 0, 76),
    ]]
    fillet(fillet3_edges, radius=FILLET3_R)


solid = part.part
